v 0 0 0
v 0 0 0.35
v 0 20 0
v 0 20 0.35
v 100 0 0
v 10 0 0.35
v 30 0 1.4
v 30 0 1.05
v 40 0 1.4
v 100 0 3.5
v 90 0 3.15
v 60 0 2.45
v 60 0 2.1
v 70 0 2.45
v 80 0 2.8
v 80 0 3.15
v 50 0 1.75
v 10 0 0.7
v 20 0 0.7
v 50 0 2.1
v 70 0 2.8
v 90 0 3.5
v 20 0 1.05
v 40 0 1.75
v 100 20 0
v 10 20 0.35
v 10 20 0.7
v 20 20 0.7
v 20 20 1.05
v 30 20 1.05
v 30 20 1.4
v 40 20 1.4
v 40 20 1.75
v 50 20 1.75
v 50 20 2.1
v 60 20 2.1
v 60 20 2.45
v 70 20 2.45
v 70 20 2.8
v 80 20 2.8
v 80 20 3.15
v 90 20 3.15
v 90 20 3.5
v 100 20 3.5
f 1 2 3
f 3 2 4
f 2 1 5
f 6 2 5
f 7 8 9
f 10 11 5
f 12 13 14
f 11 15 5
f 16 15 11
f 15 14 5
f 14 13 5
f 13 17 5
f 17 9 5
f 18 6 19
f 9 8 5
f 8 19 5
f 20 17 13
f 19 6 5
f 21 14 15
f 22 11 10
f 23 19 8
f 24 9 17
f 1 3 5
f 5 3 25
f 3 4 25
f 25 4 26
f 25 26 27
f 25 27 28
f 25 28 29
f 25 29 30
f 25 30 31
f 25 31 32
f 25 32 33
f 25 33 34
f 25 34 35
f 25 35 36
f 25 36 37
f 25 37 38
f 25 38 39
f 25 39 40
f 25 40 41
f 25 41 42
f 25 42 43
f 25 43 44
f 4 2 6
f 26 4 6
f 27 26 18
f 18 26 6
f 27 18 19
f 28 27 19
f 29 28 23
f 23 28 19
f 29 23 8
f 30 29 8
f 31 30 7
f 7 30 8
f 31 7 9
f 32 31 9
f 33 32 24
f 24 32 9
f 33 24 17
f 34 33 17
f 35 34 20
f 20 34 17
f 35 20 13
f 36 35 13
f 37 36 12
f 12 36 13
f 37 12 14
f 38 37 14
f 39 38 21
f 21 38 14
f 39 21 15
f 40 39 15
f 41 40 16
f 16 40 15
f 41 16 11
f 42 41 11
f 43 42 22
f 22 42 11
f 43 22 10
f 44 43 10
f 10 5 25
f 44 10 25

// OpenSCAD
n_pisos = 5;
alto_piso = 0.35;

w = 20;
l = 10;

for(i = [1:10])
	translate([(i-1)*l,0,0])
		cube([l,w,alto_piso*i]);
